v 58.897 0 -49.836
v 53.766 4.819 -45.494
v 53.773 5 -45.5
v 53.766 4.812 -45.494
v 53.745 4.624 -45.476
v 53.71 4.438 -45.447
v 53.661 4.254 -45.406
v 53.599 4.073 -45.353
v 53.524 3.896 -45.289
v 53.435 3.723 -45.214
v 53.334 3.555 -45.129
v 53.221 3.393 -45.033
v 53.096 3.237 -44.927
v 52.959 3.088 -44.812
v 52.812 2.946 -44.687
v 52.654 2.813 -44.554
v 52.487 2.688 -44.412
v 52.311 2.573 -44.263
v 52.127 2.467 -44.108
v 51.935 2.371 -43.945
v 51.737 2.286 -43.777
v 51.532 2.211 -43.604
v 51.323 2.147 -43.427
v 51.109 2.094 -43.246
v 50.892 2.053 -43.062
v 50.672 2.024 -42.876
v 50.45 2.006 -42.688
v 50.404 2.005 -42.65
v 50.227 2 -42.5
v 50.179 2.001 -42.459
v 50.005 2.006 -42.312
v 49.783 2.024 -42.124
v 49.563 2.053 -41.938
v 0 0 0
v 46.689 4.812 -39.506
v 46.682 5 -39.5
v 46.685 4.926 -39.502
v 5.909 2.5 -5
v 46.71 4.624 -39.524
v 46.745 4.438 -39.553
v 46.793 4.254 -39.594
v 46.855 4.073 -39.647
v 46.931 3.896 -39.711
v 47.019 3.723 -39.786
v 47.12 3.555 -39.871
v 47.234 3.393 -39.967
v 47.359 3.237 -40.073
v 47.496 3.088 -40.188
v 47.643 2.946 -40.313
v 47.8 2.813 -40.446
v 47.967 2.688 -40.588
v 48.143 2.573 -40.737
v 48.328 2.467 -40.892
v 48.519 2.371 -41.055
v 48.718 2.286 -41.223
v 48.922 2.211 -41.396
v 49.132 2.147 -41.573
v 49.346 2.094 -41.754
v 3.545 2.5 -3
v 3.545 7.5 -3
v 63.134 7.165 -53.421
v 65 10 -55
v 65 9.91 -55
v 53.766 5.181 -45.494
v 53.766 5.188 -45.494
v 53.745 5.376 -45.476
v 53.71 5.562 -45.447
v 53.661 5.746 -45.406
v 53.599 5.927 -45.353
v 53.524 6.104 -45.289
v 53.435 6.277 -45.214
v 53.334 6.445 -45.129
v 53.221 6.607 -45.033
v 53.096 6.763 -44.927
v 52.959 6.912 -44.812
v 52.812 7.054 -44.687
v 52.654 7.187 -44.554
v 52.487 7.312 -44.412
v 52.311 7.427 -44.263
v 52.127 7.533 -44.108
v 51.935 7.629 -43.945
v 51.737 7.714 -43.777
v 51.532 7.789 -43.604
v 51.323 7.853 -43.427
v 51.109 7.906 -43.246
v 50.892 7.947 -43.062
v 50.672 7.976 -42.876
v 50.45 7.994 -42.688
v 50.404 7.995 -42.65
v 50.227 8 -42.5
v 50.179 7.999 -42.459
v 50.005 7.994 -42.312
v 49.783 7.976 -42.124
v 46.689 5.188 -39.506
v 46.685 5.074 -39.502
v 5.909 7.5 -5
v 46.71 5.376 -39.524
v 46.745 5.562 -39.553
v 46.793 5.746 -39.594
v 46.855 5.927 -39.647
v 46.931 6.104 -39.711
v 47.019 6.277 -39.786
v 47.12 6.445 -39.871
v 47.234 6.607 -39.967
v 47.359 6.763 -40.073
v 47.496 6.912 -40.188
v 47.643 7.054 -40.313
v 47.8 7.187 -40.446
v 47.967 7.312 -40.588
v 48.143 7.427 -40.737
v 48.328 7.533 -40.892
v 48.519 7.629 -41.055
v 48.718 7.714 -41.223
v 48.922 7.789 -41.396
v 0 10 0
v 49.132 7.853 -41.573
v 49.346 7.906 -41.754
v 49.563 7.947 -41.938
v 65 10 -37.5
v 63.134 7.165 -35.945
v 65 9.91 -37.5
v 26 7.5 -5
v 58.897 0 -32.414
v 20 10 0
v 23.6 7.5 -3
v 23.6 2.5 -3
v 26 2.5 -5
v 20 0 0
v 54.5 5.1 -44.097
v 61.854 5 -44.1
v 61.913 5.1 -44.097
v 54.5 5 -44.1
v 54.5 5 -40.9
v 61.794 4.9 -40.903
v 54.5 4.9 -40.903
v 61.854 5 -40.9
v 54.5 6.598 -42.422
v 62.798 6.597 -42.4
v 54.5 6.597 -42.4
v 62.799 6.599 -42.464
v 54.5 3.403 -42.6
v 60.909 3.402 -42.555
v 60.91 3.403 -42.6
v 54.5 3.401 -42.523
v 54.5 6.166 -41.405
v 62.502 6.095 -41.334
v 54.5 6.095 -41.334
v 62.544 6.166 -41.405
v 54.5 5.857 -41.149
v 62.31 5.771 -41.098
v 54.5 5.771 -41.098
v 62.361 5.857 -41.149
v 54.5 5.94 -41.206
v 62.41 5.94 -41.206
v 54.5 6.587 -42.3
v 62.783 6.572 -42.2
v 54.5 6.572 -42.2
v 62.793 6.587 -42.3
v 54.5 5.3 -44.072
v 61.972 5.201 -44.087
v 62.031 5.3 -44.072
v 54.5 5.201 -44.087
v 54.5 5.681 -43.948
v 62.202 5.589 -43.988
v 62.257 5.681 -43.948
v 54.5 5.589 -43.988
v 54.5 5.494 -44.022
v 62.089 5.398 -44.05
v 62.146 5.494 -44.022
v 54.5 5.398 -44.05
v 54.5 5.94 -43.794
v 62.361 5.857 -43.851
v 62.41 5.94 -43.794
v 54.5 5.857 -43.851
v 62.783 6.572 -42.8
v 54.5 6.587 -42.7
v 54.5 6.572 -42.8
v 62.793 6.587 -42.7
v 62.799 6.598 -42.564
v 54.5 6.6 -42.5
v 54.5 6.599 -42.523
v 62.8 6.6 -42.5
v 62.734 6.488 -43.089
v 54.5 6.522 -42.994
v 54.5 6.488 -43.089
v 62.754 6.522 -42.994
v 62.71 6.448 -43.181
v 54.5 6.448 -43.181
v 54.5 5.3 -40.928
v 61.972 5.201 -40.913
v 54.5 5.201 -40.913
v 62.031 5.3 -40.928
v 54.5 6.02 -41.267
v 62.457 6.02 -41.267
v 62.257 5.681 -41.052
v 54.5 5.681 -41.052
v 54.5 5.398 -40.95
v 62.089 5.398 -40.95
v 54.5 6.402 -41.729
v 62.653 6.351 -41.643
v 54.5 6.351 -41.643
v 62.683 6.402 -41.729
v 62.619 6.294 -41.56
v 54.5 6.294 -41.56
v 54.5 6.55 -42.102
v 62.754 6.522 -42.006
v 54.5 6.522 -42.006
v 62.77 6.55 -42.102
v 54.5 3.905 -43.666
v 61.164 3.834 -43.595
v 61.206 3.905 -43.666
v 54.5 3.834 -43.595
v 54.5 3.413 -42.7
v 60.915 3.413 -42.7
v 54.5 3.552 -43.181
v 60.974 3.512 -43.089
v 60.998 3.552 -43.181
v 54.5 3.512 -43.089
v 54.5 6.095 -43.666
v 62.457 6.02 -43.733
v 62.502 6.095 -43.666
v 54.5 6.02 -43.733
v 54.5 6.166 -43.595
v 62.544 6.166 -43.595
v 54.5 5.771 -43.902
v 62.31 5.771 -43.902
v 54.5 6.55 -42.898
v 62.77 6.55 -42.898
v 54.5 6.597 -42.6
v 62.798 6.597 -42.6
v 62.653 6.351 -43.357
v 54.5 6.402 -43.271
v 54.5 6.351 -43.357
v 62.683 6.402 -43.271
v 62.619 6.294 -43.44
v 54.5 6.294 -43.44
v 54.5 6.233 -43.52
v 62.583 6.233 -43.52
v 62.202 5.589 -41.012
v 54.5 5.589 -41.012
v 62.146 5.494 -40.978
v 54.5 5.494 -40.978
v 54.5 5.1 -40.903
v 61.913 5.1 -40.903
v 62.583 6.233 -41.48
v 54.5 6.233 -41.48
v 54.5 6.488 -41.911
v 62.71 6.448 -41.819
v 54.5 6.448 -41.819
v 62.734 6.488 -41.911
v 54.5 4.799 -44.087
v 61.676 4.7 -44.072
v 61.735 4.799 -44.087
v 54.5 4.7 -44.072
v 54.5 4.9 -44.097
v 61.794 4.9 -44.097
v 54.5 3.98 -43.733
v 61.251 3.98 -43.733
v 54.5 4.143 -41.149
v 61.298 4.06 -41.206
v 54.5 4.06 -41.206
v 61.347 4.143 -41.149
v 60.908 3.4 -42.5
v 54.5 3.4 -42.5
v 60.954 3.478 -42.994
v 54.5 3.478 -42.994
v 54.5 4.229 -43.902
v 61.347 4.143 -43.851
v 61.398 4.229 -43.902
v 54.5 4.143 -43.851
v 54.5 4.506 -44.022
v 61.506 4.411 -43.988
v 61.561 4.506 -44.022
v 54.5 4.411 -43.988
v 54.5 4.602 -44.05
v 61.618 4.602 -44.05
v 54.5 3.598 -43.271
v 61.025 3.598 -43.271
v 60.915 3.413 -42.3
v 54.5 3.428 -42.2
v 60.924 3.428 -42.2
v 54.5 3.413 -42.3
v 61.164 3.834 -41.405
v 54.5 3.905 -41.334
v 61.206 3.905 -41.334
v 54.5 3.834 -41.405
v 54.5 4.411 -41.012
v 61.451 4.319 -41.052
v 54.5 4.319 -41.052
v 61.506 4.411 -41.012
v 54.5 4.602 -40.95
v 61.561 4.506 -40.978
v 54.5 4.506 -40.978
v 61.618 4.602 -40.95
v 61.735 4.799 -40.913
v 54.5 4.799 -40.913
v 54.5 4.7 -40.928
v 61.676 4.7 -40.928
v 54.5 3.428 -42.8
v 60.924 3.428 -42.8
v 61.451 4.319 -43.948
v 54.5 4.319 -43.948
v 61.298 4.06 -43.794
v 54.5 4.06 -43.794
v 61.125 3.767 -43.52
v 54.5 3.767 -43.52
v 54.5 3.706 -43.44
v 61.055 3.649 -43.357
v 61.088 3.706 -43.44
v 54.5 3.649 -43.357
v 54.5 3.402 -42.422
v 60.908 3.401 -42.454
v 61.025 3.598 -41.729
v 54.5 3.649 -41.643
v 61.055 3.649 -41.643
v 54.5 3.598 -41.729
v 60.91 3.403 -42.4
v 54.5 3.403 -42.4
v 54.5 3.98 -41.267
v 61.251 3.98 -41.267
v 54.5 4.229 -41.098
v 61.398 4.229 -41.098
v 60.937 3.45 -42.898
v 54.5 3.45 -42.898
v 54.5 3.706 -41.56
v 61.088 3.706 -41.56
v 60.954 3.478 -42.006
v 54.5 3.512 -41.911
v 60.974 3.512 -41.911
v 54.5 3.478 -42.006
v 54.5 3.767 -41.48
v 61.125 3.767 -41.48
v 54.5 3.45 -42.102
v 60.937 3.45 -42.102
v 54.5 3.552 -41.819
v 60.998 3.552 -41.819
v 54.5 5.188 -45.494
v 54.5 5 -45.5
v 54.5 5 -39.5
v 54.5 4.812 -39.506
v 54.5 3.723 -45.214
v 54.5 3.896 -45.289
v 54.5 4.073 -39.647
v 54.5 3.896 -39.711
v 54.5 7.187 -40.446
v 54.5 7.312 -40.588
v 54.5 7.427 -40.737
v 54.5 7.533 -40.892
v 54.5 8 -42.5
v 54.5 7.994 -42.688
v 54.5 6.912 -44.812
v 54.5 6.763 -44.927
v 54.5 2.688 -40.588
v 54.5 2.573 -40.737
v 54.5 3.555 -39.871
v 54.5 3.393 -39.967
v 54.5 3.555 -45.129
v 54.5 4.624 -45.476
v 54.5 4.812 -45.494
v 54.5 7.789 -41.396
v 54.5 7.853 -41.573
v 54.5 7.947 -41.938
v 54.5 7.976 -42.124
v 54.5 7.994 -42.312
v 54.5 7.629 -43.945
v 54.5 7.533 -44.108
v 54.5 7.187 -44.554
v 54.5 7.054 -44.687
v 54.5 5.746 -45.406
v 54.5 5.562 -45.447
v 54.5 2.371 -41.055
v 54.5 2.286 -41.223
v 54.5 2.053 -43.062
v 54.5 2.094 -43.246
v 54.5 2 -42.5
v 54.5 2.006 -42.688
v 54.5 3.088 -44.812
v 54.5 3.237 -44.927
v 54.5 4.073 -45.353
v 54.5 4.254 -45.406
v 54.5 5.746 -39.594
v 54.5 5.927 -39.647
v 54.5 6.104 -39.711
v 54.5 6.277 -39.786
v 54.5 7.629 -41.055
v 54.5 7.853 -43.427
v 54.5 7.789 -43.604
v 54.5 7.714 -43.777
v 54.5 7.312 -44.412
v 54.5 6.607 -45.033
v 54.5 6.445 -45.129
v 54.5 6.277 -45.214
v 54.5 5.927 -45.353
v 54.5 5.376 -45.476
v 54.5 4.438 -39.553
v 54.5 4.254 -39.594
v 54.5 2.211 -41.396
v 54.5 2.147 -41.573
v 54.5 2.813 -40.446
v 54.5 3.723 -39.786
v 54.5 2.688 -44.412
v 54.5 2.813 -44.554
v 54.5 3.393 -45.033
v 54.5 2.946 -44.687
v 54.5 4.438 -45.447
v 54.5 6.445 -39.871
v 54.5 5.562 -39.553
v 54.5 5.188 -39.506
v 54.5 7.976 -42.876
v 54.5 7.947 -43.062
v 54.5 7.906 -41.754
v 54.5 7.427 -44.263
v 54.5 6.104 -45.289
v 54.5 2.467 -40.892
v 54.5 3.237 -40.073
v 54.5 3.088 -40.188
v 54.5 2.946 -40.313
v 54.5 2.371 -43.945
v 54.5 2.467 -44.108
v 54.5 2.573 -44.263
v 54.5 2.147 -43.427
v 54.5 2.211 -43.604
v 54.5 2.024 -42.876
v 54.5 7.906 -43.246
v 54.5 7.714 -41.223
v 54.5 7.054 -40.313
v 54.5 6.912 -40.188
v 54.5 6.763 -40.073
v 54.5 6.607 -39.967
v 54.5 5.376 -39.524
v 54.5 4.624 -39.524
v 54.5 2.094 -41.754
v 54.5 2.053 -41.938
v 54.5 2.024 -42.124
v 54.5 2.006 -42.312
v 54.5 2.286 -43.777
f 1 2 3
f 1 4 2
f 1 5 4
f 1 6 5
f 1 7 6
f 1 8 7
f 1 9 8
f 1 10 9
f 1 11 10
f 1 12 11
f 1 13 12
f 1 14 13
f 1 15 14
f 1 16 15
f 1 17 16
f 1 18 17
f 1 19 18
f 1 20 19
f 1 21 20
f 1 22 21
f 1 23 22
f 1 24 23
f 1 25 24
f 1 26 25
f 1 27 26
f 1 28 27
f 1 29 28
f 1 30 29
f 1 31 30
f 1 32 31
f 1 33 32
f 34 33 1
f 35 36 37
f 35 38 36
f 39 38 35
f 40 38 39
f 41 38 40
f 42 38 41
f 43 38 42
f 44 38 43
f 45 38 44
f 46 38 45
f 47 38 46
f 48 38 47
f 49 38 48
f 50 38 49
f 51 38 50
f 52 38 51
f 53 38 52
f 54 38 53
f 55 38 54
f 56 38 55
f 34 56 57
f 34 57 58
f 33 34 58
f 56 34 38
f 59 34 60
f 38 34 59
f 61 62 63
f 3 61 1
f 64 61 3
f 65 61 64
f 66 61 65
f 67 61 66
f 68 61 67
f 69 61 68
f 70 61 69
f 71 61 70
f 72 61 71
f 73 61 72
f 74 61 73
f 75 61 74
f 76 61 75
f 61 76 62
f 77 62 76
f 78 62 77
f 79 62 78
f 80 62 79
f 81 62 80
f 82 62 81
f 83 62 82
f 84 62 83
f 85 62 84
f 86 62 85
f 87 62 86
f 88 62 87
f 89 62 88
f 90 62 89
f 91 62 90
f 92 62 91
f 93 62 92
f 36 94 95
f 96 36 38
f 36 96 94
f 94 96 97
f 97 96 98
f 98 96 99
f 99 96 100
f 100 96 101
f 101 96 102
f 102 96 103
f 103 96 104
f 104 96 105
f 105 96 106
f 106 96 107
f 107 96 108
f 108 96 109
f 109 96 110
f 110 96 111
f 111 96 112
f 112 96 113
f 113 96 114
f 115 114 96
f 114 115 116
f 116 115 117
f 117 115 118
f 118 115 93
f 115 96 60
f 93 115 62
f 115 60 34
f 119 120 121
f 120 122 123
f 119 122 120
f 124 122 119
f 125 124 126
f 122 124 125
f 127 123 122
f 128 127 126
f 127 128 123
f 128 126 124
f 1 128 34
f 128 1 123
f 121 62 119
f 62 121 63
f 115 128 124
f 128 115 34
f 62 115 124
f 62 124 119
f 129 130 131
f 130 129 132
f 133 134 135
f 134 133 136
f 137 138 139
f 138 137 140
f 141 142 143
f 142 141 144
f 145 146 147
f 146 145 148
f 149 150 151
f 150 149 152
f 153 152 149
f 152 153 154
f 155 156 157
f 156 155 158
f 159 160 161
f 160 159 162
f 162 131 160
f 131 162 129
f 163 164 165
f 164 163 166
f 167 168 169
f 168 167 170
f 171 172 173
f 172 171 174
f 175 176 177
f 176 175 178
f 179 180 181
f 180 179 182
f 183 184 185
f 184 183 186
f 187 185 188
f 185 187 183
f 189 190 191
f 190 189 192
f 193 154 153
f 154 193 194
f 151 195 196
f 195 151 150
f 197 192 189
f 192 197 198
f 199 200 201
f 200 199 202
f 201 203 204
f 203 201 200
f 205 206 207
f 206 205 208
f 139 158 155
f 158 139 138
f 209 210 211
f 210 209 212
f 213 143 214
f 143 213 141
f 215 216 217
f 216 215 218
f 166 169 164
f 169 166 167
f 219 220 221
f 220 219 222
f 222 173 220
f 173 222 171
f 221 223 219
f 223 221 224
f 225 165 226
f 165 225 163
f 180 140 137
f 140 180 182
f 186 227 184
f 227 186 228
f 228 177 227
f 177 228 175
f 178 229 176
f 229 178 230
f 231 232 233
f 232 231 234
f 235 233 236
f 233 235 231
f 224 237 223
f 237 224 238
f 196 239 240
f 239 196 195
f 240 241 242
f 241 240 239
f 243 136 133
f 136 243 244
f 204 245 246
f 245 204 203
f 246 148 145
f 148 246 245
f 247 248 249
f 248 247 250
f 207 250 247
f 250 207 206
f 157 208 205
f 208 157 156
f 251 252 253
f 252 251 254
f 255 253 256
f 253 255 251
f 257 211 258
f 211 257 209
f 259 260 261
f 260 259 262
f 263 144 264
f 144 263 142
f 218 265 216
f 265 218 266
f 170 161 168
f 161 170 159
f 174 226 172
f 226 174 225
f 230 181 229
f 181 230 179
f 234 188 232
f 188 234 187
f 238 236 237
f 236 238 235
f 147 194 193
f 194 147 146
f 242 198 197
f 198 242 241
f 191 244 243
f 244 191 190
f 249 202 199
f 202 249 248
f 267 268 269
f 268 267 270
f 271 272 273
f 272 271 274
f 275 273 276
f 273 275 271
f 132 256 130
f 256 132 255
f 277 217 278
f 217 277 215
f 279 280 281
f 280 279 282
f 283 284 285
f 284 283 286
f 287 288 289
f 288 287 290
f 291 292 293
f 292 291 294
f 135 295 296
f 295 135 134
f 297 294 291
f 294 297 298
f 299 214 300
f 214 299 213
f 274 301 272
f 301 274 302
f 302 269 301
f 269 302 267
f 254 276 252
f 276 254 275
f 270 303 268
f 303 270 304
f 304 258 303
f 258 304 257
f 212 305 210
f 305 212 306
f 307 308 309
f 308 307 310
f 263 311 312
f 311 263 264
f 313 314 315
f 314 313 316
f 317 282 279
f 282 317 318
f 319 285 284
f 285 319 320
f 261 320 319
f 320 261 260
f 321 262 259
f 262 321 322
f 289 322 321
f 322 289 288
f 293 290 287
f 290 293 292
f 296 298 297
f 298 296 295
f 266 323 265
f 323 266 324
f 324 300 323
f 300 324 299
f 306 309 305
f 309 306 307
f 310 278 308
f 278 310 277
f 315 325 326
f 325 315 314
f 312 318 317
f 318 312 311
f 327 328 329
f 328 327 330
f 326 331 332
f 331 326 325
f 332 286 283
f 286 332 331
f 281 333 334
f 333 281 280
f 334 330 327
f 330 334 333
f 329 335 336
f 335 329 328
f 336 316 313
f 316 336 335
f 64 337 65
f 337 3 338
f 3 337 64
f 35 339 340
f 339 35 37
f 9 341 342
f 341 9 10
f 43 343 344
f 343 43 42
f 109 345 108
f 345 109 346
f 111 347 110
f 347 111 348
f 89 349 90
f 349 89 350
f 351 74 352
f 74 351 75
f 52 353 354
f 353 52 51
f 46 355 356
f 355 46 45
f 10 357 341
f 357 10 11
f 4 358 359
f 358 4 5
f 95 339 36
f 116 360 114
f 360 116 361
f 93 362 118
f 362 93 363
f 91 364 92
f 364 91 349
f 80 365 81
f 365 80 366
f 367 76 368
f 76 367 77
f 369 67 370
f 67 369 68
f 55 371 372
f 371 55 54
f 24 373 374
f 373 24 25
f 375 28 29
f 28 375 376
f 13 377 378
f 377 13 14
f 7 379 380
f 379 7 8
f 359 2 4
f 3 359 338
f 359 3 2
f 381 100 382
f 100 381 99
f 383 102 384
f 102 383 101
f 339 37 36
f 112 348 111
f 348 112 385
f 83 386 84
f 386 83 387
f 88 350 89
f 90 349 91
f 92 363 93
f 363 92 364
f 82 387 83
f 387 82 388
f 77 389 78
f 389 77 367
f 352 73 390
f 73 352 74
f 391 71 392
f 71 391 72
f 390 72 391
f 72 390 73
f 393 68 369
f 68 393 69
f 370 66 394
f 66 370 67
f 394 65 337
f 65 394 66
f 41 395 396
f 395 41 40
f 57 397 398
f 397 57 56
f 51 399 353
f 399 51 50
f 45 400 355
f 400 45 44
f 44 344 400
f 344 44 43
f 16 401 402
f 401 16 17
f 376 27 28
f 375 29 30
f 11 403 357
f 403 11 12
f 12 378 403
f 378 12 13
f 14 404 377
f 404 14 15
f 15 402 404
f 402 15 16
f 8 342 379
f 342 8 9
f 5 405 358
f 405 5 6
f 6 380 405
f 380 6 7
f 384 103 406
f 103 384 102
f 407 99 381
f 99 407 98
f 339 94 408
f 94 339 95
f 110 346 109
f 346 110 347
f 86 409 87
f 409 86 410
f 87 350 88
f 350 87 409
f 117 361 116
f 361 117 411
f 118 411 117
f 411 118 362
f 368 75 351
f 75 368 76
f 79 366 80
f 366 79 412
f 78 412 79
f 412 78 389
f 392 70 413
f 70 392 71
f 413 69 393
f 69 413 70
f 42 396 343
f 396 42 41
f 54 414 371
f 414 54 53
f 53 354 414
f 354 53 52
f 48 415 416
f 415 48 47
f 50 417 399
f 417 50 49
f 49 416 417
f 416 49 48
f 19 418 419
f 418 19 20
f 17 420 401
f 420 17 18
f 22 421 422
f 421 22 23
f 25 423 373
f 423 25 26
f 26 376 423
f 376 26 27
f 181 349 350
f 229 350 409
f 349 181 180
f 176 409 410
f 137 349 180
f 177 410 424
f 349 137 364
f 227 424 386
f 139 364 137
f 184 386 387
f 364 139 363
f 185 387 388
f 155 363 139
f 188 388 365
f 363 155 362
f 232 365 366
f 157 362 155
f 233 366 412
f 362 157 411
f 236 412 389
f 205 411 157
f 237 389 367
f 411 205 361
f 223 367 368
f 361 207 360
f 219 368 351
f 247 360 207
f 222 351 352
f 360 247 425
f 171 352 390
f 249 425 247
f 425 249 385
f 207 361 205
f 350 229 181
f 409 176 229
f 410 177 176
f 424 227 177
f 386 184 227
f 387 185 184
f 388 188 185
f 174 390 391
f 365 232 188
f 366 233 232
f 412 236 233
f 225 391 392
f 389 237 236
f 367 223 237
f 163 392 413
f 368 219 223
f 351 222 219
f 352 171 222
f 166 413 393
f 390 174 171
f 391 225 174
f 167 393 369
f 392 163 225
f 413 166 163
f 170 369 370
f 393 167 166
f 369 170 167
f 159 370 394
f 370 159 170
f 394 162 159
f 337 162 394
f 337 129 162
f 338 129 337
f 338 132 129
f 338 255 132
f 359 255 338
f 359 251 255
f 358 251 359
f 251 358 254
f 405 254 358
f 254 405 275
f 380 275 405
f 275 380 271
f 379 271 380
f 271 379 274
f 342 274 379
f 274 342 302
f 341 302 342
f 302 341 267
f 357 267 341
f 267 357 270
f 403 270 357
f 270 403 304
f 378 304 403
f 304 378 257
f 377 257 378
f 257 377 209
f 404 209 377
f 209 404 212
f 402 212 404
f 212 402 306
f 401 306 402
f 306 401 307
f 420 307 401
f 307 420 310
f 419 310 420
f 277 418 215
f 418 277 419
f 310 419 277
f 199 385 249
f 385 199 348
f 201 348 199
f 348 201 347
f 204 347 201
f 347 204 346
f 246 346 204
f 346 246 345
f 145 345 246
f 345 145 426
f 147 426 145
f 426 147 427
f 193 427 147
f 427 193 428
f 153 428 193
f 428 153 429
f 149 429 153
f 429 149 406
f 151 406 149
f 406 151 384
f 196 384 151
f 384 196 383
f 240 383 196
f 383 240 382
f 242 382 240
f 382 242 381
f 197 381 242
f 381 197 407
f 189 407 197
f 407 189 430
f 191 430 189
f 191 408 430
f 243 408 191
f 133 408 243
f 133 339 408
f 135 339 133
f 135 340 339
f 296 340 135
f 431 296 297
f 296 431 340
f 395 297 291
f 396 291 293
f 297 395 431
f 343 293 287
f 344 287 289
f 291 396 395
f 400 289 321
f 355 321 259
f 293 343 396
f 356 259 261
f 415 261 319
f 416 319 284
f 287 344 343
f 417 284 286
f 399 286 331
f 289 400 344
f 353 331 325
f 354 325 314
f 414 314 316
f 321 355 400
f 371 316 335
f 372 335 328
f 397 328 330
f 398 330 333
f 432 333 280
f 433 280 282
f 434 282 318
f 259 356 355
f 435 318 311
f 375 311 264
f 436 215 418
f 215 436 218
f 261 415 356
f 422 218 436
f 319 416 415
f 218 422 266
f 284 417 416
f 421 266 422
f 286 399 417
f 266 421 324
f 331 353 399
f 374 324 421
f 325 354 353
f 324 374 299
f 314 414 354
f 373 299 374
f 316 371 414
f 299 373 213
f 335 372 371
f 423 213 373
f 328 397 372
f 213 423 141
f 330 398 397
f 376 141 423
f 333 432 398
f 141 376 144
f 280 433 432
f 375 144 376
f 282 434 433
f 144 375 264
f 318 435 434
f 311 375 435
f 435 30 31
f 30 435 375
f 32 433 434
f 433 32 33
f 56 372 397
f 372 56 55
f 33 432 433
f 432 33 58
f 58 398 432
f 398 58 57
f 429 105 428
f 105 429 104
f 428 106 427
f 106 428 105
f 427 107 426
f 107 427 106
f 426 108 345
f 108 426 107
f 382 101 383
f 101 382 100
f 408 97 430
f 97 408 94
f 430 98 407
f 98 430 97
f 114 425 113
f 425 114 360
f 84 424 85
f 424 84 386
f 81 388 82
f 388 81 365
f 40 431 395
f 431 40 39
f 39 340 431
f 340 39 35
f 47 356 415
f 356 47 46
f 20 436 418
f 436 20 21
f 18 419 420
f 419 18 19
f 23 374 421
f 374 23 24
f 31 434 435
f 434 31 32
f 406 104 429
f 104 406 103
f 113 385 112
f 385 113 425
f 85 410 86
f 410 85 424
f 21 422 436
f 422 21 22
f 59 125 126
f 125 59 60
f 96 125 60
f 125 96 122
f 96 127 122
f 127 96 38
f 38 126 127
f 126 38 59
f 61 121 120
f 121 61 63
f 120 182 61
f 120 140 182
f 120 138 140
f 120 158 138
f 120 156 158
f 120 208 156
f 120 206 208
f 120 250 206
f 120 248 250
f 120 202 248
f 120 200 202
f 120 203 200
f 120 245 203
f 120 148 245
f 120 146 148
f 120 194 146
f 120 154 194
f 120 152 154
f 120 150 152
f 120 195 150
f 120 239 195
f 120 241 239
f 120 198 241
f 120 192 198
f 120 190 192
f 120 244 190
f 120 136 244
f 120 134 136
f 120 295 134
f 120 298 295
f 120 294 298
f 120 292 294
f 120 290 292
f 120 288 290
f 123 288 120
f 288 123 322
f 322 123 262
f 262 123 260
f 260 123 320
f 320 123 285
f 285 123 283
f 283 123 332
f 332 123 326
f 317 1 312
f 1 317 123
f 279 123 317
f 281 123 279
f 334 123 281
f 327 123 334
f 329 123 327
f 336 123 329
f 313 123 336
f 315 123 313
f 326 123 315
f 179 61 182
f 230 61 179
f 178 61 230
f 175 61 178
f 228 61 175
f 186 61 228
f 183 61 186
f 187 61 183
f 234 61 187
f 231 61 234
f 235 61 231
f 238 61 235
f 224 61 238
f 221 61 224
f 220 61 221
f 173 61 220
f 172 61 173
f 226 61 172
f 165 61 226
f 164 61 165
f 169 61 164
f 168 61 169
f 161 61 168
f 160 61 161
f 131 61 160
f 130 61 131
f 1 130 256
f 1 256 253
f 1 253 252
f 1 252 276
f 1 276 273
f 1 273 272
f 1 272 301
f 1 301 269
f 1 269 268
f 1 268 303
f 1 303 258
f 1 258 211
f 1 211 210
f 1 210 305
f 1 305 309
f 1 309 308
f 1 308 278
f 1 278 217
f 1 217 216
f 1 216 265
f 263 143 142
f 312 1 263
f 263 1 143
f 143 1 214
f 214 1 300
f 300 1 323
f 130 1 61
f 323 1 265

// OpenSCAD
$fn= 100;
//difference() {
//cube([21,8,25]);
//translate([2,-1,2]) cube([27,27,21]);
//}

difference () {
    rotate([270,0,0]) linear_extrude(10) polygon(points=[[0,0],[20,0],[65,37.5],[65,55]]);
    translate([50,5,-42.5]) rotate([0,90,0]) cylinder(h=20, r=1.6);
    translate([34.5,5,-42.5]) rotate([0,90,0]) cylinder(h=20, r=3);
    translate([0,2.5,-5]) cube([40,5,2]);
    #translate([232,-100,-60]) cylinder(r=200, h=40);
}
